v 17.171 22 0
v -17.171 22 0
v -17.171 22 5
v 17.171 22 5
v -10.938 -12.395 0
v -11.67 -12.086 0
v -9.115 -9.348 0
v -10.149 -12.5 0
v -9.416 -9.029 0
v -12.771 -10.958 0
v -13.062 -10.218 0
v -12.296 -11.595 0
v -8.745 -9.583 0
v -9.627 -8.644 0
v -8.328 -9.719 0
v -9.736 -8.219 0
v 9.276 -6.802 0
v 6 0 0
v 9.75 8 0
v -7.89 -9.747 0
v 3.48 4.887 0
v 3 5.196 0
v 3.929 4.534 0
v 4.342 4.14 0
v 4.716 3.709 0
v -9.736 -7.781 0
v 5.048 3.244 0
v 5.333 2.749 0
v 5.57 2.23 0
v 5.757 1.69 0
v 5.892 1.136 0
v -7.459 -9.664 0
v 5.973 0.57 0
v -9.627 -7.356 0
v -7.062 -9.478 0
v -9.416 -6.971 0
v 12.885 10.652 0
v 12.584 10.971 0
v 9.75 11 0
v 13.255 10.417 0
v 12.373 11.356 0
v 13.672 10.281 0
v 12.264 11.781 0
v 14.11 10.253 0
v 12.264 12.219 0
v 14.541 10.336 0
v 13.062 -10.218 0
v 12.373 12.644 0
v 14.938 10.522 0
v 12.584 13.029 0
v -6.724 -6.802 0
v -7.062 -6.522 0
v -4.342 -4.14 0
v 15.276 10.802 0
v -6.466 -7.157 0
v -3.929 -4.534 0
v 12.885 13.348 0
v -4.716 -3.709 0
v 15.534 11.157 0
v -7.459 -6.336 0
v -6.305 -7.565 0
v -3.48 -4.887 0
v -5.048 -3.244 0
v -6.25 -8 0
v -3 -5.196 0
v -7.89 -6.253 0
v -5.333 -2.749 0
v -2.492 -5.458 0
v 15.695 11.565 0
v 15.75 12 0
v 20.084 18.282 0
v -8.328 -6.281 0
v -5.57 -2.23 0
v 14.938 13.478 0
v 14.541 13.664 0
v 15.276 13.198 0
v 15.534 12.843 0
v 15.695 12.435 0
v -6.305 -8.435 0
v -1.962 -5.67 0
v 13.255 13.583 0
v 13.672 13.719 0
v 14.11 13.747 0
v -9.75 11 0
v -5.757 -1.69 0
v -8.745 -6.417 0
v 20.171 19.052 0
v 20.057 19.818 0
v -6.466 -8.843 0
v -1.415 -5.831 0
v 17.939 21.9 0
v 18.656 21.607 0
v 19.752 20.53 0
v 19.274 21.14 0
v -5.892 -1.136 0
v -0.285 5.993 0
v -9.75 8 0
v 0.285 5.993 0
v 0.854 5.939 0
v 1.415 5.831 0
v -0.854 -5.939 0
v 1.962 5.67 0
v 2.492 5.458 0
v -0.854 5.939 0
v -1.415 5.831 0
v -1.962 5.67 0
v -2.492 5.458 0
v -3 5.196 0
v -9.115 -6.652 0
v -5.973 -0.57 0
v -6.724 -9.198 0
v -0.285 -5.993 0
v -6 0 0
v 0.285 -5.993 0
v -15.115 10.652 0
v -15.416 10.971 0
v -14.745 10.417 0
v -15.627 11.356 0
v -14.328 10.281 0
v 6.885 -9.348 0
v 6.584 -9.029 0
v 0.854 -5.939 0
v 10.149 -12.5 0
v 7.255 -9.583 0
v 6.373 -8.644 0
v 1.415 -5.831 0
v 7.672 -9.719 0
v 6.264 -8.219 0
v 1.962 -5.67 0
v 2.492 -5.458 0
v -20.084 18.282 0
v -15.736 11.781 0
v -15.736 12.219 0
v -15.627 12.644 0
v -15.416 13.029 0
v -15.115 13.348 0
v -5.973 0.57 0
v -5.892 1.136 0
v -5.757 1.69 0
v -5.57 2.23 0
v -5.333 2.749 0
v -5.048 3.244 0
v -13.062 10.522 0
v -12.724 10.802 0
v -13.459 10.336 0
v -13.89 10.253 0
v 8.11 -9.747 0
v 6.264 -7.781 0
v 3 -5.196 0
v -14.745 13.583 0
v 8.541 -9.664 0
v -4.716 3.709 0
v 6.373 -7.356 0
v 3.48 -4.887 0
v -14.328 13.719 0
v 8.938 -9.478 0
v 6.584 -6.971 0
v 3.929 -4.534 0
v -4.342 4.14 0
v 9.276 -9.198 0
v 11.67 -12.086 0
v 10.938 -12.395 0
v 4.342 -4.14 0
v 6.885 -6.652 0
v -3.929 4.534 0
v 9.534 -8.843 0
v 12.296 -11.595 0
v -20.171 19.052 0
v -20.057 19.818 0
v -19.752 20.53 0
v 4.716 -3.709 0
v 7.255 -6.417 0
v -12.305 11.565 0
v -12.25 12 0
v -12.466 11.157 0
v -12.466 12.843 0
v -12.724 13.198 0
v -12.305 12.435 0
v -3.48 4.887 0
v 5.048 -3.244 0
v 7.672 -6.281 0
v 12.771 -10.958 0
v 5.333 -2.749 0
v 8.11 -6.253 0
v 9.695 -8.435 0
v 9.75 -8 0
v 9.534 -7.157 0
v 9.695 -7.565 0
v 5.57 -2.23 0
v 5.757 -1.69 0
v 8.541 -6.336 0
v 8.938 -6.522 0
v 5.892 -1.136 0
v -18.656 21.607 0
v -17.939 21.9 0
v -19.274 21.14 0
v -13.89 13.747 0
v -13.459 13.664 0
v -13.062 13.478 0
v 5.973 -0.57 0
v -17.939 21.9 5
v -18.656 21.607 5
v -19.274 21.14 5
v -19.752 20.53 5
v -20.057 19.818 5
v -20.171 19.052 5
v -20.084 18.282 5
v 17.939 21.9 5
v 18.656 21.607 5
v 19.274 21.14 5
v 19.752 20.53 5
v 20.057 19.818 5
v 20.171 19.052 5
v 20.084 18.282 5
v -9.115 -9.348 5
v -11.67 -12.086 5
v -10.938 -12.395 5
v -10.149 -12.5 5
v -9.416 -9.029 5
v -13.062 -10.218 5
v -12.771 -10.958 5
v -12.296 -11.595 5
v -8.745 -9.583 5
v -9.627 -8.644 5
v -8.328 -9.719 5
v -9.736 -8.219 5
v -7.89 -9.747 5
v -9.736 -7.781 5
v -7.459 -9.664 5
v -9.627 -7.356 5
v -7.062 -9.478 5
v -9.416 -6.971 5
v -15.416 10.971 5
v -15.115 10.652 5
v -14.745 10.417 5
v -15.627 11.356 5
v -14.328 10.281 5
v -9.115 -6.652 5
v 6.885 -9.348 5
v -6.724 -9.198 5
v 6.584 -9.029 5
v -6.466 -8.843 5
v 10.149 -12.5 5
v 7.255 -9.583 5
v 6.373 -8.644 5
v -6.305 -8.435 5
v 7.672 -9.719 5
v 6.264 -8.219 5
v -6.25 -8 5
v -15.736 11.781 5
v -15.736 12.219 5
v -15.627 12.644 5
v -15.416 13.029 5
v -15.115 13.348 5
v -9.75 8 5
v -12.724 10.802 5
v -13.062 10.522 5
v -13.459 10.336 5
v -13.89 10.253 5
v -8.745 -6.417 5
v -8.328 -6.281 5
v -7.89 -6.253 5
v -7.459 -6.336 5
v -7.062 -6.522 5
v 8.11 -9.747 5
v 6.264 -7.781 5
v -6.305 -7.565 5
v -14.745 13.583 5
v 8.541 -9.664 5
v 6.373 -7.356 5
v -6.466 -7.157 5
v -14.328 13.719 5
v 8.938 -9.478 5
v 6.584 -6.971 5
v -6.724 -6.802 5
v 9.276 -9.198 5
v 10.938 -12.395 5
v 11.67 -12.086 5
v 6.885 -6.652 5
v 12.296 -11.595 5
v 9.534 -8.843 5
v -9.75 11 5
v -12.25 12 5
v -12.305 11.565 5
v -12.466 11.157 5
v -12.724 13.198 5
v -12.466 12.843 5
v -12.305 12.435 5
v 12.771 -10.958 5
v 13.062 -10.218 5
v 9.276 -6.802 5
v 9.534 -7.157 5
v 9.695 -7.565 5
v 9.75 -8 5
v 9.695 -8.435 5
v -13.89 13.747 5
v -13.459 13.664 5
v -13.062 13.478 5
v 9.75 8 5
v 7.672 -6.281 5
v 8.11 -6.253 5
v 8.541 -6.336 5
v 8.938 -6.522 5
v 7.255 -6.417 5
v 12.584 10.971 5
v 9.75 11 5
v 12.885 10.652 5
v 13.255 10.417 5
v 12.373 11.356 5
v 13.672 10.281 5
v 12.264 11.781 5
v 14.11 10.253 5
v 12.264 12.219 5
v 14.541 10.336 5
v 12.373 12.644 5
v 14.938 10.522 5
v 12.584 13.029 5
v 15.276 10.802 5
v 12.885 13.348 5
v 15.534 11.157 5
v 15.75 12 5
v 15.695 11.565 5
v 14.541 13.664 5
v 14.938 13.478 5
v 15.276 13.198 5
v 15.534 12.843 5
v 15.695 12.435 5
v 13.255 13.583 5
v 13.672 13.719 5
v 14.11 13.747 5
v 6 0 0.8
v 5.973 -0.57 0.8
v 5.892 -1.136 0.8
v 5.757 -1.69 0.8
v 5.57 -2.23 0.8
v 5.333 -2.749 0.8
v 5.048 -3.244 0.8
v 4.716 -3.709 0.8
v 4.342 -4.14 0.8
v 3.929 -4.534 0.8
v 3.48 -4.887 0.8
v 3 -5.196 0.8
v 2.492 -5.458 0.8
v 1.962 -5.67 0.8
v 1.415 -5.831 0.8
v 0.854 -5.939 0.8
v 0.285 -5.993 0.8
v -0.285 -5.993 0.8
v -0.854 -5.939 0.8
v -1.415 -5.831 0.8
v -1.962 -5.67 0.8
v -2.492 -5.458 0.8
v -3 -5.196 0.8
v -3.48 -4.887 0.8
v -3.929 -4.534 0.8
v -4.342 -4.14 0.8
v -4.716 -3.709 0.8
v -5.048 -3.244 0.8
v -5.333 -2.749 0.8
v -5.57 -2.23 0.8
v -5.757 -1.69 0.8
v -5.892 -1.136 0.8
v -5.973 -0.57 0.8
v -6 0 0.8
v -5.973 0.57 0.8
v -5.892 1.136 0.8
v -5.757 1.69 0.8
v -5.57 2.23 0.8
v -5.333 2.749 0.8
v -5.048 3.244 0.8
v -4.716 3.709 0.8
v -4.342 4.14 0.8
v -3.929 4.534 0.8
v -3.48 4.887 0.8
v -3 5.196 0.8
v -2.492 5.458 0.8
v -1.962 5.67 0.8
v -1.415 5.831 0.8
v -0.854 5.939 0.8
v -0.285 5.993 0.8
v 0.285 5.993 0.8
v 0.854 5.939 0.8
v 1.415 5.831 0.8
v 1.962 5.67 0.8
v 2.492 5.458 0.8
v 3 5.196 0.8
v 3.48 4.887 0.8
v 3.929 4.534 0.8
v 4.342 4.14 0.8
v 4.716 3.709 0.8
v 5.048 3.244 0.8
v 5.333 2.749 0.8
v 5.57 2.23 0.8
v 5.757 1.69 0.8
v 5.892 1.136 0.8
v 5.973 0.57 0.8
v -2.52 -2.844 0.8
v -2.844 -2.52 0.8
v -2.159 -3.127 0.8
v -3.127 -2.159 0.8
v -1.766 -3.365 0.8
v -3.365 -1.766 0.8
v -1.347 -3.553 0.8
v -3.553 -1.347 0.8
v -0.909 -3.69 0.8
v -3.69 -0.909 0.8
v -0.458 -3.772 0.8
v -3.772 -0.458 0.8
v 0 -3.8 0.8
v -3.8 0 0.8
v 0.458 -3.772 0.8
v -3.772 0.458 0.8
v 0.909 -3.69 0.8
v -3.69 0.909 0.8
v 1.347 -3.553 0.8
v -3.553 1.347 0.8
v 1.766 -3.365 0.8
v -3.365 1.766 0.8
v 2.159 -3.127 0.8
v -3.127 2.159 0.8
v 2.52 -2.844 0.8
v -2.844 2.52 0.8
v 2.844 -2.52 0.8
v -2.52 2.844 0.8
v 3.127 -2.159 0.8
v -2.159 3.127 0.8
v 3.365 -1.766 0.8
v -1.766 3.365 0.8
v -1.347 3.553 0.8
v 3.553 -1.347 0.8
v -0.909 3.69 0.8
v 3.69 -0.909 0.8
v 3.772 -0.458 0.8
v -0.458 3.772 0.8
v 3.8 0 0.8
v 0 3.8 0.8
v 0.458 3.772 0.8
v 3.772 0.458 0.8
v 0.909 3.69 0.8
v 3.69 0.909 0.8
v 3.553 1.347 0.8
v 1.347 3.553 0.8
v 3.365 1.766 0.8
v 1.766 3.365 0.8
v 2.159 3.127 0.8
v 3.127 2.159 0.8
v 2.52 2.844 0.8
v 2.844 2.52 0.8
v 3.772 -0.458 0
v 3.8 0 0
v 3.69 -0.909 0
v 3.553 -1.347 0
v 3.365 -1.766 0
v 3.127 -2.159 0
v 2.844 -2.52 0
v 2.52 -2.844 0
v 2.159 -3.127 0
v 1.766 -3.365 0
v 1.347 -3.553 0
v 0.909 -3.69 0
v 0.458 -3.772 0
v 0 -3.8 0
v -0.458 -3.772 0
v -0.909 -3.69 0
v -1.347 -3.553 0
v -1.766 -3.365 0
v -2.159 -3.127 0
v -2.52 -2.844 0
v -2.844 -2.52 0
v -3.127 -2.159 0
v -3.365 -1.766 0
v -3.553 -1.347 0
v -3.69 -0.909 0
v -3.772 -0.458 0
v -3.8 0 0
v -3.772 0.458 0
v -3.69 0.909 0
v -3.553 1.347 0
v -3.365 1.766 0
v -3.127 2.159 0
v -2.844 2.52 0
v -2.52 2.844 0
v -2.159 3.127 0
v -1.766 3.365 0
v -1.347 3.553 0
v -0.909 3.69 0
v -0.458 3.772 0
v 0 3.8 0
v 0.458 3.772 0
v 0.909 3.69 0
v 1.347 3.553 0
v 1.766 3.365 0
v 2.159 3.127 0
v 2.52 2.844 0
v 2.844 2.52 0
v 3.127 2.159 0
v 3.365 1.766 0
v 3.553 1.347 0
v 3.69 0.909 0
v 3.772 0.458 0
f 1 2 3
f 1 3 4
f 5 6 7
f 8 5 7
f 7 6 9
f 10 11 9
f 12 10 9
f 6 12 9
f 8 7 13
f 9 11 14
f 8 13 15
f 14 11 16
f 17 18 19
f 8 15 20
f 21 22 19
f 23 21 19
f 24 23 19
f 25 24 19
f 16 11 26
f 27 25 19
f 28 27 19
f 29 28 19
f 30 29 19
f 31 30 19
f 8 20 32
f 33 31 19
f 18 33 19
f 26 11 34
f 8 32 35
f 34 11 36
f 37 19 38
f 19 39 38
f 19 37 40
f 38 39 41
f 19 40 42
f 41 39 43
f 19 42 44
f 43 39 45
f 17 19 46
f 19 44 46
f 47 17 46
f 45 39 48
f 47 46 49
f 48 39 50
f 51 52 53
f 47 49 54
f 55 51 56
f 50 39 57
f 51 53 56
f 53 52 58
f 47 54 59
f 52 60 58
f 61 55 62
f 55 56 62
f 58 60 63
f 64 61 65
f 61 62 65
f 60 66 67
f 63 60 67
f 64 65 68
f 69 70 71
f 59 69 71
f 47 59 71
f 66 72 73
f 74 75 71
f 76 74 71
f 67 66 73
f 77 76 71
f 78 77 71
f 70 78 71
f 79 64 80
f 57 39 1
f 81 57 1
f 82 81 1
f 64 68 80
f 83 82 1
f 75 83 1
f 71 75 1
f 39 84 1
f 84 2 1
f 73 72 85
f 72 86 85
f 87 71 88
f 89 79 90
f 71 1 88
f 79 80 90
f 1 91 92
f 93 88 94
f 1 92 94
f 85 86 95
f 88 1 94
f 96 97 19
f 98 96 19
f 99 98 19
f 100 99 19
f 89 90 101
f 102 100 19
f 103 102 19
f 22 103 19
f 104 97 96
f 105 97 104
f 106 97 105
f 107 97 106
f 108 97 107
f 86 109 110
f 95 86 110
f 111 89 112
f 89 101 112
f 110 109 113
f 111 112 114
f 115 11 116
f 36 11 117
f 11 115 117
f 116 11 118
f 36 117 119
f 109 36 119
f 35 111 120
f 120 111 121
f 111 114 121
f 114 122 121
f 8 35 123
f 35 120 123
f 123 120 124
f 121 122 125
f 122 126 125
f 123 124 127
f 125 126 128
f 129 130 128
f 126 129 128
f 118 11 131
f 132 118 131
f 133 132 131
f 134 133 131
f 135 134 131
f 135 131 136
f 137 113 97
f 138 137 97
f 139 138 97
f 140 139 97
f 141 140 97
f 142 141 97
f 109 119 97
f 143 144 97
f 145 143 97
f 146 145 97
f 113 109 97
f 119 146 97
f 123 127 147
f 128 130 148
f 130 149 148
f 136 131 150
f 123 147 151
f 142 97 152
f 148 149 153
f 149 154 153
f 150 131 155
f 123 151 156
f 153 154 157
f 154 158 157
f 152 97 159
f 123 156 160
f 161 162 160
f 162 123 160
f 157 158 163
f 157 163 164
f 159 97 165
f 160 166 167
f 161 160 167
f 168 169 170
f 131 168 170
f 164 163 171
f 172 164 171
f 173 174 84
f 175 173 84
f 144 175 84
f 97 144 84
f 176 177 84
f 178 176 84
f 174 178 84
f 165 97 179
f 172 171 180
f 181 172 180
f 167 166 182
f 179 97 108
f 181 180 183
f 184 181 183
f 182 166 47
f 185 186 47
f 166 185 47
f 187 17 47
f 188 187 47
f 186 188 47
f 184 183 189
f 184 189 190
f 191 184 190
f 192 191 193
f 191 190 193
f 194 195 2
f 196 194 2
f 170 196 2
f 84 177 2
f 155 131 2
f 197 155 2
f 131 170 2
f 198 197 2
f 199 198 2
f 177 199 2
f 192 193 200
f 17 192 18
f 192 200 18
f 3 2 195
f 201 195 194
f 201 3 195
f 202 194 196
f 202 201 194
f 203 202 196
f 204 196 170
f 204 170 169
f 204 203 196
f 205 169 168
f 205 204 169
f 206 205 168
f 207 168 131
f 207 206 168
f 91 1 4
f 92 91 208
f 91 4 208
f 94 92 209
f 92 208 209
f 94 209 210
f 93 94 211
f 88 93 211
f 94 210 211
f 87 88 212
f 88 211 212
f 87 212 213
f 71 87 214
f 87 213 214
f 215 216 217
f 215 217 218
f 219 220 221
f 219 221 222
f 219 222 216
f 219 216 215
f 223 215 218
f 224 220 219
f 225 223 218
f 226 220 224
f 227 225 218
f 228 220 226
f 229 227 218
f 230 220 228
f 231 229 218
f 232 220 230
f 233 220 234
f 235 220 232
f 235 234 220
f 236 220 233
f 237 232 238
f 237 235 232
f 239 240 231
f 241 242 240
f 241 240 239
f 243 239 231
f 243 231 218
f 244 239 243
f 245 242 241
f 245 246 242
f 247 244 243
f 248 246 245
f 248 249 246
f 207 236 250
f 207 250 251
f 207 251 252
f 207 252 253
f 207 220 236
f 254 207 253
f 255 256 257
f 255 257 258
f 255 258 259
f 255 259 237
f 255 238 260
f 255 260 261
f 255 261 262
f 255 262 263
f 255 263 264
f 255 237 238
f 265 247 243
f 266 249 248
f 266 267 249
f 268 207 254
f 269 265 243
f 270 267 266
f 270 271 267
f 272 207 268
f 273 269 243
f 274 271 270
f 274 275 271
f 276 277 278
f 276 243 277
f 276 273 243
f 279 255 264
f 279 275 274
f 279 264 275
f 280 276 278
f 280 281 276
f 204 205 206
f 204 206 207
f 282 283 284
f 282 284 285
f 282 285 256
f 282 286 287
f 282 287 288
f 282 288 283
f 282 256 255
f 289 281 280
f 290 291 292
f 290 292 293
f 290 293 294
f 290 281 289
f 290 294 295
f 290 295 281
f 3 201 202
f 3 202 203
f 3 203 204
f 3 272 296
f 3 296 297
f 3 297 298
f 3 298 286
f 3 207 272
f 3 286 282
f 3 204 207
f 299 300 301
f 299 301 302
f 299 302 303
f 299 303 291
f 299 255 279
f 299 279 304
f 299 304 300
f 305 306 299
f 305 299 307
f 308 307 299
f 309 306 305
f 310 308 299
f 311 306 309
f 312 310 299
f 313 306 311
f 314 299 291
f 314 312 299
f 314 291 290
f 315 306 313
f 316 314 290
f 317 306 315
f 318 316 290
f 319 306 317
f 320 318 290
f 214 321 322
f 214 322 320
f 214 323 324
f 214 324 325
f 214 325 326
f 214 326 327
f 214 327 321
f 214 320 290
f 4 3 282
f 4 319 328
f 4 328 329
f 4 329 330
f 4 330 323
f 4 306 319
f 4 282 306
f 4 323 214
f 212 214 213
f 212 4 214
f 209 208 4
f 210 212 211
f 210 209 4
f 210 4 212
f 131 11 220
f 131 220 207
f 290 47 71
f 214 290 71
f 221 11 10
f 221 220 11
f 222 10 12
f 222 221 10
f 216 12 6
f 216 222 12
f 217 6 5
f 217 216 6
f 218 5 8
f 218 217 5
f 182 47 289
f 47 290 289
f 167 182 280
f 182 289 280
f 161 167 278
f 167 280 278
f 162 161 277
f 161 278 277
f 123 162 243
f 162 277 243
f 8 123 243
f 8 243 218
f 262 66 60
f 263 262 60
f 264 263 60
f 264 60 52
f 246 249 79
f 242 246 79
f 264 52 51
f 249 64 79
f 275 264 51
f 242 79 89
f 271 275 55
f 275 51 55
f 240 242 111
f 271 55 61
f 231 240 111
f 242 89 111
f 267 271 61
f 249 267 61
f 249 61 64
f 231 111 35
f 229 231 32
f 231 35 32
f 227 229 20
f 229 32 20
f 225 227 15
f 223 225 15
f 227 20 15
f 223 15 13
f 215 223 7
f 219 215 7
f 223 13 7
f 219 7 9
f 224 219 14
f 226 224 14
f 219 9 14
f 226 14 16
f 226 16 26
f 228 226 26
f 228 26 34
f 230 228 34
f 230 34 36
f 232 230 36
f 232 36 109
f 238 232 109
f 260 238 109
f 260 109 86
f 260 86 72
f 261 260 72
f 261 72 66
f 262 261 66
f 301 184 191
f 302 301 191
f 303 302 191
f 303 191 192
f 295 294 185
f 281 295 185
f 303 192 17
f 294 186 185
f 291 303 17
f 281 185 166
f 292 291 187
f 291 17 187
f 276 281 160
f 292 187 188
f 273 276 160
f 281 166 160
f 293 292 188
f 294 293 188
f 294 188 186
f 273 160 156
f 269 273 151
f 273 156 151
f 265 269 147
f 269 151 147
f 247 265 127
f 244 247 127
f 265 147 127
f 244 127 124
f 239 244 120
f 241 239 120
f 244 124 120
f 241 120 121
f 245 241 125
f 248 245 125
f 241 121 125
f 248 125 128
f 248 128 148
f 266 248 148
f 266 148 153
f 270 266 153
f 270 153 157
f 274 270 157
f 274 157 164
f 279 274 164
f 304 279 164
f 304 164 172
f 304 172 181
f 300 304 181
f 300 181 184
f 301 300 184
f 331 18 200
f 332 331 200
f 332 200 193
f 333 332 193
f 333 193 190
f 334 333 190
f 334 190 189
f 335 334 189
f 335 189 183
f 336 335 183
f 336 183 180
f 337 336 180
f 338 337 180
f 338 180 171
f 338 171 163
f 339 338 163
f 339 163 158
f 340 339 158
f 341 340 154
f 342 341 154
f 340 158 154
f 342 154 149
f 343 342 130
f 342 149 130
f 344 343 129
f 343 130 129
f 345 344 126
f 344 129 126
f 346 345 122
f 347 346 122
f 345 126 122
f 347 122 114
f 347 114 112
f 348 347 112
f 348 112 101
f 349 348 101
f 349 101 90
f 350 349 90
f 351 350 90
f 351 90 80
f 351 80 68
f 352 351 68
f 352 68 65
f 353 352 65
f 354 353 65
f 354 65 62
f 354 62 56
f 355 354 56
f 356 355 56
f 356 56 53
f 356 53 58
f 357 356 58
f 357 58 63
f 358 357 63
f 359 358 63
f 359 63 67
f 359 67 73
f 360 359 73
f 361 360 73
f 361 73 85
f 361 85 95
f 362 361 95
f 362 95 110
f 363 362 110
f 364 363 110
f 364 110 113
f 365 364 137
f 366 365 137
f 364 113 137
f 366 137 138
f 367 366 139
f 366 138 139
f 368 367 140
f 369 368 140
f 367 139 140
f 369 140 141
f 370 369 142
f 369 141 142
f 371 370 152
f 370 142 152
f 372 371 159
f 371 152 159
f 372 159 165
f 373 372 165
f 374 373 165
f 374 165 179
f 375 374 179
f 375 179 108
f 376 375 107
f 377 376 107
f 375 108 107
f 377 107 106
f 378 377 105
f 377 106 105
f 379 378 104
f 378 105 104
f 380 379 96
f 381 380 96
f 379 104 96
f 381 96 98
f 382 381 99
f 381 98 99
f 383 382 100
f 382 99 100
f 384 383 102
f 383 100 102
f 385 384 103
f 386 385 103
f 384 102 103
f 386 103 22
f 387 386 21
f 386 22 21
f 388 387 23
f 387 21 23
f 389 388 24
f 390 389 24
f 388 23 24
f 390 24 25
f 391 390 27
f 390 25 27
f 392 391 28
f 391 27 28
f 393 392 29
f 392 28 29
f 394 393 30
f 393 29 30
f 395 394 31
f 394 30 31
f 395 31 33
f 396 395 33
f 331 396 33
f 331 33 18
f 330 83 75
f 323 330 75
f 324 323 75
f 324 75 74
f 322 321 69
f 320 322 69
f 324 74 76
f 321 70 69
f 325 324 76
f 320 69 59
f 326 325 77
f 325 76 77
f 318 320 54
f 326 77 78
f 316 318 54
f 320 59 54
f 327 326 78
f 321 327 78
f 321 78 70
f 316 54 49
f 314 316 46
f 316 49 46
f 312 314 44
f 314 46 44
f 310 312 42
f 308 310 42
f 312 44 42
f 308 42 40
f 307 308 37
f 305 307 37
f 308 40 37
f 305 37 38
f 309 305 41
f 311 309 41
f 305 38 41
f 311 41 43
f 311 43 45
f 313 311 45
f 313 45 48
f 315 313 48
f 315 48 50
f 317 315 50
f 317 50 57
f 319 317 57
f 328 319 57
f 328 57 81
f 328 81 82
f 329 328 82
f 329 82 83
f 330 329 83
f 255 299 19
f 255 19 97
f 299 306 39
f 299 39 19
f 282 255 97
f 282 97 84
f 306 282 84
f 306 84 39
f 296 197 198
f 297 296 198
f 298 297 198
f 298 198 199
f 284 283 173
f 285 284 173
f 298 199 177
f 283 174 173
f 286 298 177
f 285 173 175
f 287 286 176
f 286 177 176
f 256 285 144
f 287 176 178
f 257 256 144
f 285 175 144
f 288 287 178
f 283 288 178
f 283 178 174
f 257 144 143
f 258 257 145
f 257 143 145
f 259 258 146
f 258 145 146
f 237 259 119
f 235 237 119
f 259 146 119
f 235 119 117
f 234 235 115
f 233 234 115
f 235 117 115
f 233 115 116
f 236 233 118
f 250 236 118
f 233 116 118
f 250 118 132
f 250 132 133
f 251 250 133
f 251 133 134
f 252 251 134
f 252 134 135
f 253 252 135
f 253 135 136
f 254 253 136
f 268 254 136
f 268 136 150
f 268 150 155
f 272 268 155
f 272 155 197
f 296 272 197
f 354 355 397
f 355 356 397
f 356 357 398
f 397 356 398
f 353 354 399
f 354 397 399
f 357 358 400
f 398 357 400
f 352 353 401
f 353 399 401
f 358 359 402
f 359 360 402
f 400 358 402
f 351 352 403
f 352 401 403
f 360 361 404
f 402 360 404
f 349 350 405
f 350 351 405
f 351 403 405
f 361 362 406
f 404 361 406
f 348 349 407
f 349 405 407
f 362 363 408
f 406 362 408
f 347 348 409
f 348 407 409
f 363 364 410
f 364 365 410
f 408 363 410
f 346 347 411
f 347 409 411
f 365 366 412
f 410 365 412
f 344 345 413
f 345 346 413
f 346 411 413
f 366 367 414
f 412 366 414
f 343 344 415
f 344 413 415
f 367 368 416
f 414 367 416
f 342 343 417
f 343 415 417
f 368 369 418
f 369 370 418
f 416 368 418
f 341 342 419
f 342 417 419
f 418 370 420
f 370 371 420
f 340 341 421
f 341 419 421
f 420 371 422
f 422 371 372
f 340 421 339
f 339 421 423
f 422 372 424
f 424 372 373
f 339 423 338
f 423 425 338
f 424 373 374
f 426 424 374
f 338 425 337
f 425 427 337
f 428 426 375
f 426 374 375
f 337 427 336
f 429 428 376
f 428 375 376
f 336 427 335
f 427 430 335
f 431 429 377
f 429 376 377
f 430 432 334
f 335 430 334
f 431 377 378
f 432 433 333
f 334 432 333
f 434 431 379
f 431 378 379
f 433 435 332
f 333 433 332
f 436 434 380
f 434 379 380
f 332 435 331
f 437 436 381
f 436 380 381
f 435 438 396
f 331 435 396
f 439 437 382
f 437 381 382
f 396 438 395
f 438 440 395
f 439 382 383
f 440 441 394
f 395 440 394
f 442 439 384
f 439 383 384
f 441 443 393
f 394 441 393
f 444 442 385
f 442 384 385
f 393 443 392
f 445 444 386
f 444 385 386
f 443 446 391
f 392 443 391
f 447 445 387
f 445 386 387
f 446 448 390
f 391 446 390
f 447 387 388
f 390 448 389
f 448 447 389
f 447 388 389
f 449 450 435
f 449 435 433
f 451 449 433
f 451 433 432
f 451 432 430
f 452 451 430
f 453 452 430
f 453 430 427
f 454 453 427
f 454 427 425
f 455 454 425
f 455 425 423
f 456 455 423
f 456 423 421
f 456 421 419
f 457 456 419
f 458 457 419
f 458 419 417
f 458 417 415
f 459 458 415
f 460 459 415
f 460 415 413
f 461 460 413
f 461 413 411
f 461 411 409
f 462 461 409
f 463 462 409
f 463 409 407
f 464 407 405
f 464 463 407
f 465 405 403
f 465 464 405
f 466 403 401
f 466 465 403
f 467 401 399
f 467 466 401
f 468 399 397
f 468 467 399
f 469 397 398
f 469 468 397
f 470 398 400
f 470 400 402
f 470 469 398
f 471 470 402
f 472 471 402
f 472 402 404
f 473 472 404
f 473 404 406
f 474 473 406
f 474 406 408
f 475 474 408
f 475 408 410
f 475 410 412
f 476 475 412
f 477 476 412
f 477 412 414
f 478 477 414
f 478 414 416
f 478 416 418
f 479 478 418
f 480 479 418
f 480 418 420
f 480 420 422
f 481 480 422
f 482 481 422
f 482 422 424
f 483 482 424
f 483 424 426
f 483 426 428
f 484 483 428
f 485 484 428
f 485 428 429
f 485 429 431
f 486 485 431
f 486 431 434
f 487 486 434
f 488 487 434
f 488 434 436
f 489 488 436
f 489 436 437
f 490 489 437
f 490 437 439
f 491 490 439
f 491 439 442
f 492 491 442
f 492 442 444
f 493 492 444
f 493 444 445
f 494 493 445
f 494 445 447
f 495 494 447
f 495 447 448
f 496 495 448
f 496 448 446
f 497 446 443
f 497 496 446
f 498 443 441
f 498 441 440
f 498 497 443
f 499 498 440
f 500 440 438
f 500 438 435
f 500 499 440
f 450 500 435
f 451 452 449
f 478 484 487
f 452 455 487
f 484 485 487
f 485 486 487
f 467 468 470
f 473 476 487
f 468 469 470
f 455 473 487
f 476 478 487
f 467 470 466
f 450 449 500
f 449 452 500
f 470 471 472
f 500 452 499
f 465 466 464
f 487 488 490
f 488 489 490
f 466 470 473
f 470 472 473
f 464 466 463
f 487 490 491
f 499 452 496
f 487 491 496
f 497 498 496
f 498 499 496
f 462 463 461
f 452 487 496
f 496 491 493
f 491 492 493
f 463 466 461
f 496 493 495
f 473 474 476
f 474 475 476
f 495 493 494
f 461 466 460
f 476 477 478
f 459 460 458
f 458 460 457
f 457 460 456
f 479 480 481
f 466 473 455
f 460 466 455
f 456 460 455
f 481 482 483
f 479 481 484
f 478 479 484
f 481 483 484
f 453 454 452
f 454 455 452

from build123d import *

# Parameters (mm, degrees)
PAD_DEPTH       = 5
SKETCH001_R     = 6
SKETCH001_R_2   = 3.8
POCKET_DEPTH    = 0.8
SKETCH004_W     = 19.5
SKETCH004_H     = 3
POCKET001_DEPTH = 5
SKETCH011_R     = 1.75
POCKET002_DEPTH = 5
FILLET_R        = 3


with BuildPart() as part:
    # Sketch → Pad (new body)
    with BuildSketch(Plane.XY):
        Polygon((-21, 22), (21, 22), (12.5, -12.5), (-12.5, -12.5), align=None)
    extrude(amount=PAD_DEPTH)

    # Sketch001 → Pocket (cut)
    with BuildSketch(Plane(origin=(0, 0, 0), x_dir=(1, 0, 0), z_dir=(0, 0, -1))):
        Circle(SKETCH001_R)
        Circle(SKETCH001_R_2, mode=Mode.SUBTRACT)
    extrude(amount=-POCKET_DEPTH, mode=Mode.SUBTRACT)

    # Sketch004 → Pocket001 (cut)
    with BuildSketch(Plane.XY.offset(5)):
        with Locations((0, 9.5)):
            Rectangle(SKETCH004_W, SKETCH004_H)
    extrude(amount=-POCKET001_DEPTH, mode=Mode.SUBTRACT)

    # Sketch011 → Pocket002 (cut)
    with BuildSketch(Plane(origin=(0, 0, 0), x_dir=(1, 0, 0), z_dir=(0, 0, -1))):
        with Locations((-8, 8)):
            Circle(SKETCH011_R)
        with Locations((8, 8)):
            Circle(SKETCH011_R)
        with Locations((-14, -12)):
            Circle(SKETCH011_R)
        with Locations((14, -12)):
            Circle(SKETCH011_R)
    extrude(amount=-POCKET002_DEPTH, mode=Mode.SUBTRACT)

    # Fillet
    fillet_edges = [part.edges().sort_by_distance(p)[0] for p in [
        (21, 22, 2.5),
        (-21, 22, 2.5),
        (-12.5, -12.5, 2.5),
        (12.5, -12.5, 2.5),
    ]]
    fillet(fillet_edges, radius=FILLET_R)


solid = part.part
